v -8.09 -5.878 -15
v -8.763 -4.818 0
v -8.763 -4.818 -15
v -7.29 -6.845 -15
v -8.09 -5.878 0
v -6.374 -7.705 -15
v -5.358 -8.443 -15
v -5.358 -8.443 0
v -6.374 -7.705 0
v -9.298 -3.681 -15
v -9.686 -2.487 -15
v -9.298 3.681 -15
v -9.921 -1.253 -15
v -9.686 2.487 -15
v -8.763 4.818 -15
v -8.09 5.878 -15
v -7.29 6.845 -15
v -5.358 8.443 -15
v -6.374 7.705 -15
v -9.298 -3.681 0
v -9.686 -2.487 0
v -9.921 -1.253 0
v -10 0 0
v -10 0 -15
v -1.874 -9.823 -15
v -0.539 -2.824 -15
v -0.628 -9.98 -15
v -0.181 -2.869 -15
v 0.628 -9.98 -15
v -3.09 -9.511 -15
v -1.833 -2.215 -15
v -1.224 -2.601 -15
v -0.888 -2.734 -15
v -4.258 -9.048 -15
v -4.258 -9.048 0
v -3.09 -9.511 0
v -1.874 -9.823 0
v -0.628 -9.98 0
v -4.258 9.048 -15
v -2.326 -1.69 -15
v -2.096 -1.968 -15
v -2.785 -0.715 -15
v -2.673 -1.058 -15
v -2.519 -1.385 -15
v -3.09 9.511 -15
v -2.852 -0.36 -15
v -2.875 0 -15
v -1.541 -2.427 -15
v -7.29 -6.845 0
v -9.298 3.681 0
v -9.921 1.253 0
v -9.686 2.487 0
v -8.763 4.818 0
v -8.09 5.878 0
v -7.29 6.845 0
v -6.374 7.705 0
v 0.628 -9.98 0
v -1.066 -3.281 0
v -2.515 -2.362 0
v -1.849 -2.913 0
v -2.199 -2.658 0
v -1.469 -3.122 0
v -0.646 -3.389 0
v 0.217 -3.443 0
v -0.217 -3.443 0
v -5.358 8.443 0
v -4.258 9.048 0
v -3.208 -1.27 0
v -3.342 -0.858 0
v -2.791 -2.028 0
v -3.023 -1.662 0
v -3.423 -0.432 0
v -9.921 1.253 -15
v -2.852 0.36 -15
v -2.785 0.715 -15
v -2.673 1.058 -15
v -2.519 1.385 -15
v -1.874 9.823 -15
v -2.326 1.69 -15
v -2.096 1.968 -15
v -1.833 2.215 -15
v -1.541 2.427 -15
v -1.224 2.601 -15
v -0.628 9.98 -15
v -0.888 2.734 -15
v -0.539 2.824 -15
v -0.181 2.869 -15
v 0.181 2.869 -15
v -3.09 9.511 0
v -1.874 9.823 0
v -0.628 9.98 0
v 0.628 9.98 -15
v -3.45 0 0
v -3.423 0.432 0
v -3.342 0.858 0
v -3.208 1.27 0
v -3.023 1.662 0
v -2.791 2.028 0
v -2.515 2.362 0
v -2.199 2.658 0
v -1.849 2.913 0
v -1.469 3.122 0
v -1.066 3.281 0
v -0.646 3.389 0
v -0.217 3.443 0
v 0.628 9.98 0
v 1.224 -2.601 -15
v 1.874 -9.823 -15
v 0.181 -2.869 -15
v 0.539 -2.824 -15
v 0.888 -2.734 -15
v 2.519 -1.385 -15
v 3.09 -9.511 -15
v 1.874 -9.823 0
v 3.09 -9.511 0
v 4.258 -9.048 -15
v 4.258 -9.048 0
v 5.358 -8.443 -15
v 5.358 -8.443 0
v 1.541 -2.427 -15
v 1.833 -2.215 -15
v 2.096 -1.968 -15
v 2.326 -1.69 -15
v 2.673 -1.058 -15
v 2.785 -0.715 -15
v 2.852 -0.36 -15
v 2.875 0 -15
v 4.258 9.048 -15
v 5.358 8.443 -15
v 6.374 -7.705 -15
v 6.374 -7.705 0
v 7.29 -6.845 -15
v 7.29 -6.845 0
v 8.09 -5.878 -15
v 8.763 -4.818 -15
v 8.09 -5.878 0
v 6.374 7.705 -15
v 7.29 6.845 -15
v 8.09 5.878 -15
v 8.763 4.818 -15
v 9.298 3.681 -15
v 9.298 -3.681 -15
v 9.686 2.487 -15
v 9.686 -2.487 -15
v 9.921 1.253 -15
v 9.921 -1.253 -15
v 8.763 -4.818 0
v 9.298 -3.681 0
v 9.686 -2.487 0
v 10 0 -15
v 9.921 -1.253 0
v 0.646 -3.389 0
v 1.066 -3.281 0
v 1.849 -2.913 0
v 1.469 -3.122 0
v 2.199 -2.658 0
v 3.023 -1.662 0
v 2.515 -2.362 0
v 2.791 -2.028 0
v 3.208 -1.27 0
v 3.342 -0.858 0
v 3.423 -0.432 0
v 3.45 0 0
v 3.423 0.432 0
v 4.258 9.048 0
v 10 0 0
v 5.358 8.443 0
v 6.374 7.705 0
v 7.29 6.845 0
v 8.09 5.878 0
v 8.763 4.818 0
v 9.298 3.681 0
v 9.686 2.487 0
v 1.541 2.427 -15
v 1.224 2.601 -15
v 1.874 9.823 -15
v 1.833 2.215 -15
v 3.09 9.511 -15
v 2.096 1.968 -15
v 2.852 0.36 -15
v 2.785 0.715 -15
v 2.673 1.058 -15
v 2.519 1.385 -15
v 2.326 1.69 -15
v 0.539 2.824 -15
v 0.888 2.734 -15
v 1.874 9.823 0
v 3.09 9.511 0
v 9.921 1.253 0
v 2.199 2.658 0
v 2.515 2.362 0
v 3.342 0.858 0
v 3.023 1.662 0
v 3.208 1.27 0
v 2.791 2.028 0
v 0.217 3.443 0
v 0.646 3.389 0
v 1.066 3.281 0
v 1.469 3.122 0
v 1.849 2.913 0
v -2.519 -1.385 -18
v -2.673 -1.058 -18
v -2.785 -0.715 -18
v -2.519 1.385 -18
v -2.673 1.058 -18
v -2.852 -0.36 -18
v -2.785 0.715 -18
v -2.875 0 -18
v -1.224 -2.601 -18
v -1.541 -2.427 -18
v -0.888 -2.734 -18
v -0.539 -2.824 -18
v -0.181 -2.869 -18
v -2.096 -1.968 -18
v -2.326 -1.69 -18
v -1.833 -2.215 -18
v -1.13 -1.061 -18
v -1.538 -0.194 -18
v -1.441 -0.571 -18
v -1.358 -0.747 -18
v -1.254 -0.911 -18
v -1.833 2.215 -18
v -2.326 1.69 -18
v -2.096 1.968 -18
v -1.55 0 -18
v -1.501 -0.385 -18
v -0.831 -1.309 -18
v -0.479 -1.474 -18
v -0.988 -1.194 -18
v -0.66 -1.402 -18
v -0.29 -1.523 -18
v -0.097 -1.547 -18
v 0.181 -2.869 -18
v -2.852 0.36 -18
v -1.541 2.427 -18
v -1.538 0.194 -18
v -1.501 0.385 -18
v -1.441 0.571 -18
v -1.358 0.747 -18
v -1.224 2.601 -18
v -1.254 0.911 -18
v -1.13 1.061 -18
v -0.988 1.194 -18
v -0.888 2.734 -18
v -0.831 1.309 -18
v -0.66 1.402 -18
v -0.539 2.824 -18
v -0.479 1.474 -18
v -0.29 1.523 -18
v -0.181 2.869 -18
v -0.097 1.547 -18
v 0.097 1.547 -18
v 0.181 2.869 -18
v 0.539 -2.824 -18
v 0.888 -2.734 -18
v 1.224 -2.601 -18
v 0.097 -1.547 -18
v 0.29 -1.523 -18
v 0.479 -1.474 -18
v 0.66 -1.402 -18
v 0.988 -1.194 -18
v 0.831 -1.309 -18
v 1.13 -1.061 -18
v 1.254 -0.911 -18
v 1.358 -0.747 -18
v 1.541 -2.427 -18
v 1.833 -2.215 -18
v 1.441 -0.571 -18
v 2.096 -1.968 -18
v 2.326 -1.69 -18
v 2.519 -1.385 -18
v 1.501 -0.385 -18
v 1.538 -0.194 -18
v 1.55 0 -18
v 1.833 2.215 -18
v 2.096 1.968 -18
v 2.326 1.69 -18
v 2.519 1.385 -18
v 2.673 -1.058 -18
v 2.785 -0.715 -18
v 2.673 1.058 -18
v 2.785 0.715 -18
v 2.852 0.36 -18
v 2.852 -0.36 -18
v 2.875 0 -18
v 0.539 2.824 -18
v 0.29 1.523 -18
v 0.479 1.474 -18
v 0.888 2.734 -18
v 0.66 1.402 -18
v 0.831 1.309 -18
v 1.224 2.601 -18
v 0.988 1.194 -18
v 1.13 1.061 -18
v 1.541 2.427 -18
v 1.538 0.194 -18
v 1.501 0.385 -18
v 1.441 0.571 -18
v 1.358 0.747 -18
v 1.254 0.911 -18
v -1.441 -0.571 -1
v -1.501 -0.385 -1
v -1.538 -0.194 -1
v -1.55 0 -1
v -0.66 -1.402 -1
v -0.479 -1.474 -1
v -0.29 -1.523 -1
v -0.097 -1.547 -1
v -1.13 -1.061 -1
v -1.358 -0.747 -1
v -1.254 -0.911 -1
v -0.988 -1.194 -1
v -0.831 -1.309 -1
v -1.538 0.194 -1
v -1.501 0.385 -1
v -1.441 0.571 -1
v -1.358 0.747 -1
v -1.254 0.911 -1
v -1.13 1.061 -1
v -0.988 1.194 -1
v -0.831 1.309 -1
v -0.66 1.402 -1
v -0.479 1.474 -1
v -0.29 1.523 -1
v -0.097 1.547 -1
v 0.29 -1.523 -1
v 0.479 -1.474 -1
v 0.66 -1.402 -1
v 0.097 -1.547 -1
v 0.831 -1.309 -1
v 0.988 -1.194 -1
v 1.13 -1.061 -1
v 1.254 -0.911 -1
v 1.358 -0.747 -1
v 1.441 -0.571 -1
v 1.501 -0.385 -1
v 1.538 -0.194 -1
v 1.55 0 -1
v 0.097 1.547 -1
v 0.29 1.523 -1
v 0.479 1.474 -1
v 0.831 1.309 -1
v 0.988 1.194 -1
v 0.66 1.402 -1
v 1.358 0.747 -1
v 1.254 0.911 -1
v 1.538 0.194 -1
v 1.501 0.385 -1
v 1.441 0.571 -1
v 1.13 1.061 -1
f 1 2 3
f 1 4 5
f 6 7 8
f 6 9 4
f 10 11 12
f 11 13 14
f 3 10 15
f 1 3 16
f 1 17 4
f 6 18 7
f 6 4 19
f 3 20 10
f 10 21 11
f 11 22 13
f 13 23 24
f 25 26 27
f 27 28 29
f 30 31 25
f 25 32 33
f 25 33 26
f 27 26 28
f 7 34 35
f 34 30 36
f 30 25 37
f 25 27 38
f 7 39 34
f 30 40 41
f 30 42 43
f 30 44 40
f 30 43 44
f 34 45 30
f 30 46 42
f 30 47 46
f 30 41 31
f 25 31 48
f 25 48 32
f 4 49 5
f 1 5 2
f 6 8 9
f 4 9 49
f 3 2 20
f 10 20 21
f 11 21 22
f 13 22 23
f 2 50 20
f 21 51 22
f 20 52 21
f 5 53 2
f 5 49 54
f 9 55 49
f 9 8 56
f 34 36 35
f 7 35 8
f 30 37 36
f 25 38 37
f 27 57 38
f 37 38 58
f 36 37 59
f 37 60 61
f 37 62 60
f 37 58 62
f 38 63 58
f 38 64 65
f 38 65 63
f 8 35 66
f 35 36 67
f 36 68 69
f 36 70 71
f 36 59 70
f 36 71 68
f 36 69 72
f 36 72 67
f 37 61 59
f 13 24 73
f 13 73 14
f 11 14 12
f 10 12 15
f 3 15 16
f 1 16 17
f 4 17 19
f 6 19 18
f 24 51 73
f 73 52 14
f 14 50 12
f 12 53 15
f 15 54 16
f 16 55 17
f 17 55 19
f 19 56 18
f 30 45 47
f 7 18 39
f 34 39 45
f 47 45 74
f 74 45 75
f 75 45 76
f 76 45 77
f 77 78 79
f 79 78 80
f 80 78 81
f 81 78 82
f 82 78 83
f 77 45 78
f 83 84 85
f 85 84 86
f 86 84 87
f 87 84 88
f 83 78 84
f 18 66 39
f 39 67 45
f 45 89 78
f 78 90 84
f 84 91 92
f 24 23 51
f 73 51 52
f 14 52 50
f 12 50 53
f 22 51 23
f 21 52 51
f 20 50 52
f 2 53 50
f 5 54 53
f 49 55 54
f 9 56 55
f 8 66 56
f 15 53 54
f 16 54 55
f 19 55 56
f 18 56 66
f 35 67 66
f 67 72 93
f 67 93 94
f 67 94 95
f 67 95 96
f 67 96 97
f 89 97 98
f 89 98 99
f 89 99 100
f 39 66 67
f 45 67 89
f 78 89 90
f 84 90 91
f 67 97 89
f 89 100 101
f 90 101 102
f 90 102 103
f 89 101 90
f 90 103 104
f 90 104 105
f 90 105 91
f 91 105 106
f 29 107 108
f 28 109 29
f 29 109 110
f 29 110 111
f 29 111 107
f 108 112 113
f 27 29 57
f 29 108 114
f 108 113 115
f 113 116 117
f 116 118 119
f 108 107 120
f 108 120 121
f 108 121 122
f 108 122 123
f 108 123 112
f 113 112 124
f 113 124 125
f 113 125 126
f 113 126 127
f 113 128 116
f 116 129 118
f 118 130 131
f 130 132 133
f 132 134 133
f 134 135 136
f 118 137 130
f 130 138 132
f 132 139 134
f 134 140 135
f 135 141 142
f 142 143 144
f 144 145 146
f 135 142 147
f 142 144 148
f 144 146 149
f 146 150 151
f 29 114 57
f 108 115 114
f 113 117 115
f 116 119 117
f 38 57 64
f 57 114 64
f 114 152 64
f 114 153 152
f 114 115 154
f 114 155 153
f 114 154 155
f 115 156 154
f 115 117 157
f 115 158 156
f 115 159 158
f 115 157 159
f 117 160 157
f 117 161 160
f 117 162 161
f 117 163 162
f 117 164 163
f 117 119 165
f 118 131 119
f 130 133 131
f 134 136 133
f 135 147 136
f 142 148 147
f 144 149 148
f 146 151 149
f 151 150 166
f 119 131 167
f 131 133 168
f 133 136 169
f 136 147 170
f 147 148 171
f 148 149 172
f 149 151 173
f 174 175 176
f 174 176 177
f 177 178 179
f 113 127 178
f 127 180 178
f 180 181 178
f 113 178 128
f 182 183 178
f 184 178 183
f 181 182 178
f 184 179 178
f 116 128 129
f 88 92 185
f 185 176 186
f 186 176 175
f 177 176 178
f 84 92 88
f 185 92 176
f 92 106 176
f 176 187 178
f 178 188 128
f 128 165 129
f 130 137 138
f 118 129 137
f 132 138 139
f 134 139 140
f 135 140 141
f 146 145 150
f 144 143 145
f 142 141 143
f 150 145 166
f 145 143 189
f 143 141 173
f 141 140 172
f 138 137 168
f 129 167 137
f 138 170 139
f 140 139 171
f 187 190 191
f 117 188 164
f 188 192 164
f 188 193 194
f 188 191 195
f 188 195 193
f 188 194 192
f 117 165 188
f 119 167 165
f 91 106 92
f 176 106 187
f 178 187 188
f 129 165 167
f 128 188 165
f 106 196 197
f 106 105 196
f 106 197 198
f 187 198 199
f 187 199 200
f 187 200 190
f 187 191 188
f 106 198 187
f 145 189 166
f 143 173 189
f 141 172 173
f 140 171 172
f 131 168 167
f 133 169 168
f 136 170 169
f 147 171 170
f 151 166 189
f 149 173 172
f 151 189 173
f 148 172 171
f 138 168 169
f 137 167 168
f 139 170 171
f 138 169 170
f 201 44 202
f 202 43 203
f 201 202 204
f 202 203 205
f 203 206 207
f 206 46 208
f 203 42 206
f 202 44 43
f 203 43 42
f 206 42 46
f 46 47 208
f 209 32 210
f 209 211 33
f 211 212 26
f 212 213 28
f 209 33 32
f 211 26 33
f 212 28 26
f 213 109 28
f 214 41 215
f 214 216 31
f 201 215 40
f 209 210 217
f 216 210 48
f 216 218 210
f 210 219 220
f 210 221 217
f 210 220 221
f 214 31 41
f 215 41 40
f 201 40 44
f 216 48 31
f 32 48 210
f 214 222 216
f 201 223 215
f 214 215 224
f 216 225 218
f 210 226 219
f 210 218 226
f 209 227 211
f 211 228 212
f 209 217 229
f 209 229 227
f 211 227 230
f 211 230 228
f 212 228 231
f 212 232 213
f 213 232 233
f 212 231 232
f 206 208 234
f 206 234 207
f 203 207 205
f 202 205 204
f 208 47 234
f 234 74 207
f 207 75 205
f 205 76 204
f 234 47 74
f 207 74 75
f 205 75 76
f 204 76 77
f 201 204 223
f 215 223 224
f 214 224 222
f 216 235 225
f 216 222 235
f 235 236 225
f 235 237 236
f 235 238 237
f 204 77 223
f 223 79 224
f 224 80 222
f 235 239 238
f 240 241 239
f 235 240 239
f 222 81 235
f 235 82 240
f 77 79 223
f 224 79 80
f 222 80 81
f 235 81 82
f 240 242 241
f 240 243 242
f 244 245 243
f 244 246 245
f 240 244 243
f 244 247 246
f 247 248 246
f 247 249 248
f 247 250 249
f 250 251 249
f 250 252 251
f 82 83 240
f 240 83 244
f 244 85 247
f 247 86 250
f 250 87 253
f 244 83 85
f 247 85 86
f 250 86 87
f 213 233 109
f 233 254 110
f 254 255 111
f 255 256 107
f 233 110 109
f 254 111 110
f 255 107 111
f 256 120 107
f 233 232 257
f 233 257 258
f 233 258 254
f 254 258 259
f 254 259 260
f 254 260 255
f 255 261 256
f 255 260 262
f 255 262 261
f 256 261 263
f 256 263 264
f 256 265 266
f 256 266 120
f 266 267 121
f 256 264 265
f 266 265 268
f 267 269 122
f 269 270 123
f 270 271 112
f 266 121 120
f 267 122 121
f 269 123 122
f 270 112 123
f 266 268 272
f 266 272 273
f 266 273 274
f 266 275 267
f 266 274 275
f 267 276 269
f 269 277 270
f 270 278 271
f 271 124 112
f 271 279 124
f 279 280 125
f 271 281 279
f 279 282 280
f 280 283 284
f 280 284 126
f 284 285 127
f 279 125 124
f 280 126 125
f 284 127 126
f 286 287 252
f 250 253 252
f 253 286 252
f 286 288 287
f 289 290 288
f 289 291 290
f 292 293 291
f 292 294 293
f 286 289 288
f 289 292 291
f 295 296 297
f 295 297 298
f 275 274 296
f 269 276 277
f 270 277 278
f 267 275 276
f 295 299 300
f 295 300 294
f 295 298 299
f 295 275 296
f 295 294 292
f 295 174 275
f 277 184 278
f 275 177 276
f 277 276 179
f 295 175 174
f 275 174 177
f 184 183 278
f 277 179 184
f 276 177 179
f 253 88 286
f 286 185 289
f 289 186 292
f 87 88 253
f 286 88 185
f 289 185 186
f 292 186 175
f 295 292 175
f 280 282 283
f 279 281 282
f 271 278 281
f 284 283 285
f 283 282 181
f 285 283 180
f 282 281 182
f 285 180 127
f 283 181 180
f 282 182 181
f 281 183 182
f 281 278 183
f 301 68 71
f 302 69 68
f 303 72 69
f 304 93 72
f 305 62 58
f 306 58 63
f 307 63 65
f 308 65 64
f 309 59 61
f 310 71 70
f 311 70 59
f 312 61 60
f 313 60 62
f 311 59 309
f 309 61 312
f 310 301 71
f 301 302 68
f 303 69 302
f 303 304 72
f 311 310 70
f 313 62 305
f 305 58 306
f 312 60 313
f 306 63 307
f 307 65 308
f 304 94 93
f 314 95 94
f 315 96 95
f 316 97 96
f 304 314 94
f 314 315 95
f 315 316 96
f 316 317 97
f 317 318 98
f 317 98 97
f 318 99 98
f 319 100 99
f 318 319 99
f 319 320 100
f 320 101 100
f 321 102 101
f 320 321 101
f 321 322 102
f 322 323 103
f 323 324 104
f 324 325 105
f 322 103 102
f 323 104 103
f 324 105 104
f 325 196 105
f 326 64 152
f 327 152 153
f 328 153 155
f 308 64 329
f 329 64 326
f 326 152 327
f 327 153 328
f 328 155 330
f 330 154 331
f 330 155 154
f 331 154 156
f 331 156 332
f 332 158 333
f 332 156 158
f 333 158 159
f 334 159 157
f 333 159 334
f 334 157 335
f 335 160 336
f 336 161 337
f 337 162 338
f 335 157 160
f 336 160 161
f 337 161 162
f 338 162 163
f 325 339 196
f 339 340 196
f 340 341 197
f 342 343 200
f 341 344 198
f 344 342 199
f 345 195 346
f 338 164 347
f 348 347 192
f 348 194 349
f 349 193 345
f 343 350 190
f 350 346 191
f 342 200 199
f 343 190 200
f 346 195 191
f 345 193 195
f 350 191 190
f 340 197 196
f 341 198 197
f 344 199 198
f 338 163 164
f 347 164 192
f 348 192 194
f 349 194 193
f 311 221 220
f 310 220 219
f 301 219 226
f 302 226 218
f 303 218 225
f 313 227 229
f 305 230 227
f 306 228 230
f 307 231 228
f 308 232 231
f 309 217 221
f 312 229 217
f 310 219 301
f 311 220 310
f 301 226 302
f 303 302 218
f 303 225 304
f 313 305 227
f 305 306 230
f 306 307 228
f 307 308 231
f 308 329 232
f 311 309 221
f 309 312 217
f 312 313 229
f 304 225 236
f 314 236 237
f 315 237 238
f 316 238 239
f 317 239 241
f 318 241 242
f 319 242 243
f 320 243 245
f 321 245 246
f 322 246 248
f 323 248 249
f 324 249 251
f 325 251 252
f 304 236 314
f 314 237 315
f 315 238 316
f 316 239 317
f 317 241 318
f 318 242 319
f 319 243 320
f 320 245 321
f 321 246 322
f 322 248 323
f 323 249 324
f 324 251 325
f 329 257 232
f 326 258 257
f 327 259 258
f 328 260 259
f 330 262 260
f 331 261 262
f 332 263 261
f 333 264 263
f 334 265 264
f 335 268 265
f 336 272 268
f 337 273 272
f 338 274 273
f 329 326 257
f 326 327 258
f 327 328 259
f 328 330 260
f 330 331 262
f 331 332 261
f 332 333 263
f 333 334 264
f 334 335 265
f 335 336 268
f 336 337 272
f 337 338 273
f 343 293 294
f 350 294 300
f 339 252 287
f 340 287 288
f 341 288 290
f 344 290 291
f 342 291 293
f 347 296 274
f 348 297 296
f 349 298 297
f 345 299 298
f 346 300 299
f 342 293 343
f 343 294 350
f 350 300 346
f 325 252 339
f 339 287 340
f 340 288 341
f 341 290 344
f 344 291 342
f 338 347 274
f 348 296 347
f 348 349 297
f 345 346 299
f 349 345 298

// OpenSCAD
$fn = 50;

difference() {
	union() {
		translate(v = [0, 0, -15.0]) {
			cylinder(h = 15, r = 10.0);
		}
		#translate(v = [0, 0, -18.0]) {
			cylinder(h = 18, r = 2.875);
		}
	}
	union() {
		translate(v = [0, 0, 0]) {
			rotate(a = [0, 0, 0]) {
				difference() {
					union() {
						translate(v = [0, 0, -18.0]) {
							cylinder(h = 18, r = 1.25);
						}
						translate(v = [0, 0, -1.0]) {
							cylinder(h = 1.0, r1 = 1.55, r2 = 3.45);
						}
						translate(v = [0, 0, -18.0]) {
							cylinder(h = 18, r = 1.55);
						}
						translate(v = [0, 0, -18.0]) {
							cylinder(h = 18, r = 1.25);
						}
					}
					union();
				}
			}
		}
	}
}
